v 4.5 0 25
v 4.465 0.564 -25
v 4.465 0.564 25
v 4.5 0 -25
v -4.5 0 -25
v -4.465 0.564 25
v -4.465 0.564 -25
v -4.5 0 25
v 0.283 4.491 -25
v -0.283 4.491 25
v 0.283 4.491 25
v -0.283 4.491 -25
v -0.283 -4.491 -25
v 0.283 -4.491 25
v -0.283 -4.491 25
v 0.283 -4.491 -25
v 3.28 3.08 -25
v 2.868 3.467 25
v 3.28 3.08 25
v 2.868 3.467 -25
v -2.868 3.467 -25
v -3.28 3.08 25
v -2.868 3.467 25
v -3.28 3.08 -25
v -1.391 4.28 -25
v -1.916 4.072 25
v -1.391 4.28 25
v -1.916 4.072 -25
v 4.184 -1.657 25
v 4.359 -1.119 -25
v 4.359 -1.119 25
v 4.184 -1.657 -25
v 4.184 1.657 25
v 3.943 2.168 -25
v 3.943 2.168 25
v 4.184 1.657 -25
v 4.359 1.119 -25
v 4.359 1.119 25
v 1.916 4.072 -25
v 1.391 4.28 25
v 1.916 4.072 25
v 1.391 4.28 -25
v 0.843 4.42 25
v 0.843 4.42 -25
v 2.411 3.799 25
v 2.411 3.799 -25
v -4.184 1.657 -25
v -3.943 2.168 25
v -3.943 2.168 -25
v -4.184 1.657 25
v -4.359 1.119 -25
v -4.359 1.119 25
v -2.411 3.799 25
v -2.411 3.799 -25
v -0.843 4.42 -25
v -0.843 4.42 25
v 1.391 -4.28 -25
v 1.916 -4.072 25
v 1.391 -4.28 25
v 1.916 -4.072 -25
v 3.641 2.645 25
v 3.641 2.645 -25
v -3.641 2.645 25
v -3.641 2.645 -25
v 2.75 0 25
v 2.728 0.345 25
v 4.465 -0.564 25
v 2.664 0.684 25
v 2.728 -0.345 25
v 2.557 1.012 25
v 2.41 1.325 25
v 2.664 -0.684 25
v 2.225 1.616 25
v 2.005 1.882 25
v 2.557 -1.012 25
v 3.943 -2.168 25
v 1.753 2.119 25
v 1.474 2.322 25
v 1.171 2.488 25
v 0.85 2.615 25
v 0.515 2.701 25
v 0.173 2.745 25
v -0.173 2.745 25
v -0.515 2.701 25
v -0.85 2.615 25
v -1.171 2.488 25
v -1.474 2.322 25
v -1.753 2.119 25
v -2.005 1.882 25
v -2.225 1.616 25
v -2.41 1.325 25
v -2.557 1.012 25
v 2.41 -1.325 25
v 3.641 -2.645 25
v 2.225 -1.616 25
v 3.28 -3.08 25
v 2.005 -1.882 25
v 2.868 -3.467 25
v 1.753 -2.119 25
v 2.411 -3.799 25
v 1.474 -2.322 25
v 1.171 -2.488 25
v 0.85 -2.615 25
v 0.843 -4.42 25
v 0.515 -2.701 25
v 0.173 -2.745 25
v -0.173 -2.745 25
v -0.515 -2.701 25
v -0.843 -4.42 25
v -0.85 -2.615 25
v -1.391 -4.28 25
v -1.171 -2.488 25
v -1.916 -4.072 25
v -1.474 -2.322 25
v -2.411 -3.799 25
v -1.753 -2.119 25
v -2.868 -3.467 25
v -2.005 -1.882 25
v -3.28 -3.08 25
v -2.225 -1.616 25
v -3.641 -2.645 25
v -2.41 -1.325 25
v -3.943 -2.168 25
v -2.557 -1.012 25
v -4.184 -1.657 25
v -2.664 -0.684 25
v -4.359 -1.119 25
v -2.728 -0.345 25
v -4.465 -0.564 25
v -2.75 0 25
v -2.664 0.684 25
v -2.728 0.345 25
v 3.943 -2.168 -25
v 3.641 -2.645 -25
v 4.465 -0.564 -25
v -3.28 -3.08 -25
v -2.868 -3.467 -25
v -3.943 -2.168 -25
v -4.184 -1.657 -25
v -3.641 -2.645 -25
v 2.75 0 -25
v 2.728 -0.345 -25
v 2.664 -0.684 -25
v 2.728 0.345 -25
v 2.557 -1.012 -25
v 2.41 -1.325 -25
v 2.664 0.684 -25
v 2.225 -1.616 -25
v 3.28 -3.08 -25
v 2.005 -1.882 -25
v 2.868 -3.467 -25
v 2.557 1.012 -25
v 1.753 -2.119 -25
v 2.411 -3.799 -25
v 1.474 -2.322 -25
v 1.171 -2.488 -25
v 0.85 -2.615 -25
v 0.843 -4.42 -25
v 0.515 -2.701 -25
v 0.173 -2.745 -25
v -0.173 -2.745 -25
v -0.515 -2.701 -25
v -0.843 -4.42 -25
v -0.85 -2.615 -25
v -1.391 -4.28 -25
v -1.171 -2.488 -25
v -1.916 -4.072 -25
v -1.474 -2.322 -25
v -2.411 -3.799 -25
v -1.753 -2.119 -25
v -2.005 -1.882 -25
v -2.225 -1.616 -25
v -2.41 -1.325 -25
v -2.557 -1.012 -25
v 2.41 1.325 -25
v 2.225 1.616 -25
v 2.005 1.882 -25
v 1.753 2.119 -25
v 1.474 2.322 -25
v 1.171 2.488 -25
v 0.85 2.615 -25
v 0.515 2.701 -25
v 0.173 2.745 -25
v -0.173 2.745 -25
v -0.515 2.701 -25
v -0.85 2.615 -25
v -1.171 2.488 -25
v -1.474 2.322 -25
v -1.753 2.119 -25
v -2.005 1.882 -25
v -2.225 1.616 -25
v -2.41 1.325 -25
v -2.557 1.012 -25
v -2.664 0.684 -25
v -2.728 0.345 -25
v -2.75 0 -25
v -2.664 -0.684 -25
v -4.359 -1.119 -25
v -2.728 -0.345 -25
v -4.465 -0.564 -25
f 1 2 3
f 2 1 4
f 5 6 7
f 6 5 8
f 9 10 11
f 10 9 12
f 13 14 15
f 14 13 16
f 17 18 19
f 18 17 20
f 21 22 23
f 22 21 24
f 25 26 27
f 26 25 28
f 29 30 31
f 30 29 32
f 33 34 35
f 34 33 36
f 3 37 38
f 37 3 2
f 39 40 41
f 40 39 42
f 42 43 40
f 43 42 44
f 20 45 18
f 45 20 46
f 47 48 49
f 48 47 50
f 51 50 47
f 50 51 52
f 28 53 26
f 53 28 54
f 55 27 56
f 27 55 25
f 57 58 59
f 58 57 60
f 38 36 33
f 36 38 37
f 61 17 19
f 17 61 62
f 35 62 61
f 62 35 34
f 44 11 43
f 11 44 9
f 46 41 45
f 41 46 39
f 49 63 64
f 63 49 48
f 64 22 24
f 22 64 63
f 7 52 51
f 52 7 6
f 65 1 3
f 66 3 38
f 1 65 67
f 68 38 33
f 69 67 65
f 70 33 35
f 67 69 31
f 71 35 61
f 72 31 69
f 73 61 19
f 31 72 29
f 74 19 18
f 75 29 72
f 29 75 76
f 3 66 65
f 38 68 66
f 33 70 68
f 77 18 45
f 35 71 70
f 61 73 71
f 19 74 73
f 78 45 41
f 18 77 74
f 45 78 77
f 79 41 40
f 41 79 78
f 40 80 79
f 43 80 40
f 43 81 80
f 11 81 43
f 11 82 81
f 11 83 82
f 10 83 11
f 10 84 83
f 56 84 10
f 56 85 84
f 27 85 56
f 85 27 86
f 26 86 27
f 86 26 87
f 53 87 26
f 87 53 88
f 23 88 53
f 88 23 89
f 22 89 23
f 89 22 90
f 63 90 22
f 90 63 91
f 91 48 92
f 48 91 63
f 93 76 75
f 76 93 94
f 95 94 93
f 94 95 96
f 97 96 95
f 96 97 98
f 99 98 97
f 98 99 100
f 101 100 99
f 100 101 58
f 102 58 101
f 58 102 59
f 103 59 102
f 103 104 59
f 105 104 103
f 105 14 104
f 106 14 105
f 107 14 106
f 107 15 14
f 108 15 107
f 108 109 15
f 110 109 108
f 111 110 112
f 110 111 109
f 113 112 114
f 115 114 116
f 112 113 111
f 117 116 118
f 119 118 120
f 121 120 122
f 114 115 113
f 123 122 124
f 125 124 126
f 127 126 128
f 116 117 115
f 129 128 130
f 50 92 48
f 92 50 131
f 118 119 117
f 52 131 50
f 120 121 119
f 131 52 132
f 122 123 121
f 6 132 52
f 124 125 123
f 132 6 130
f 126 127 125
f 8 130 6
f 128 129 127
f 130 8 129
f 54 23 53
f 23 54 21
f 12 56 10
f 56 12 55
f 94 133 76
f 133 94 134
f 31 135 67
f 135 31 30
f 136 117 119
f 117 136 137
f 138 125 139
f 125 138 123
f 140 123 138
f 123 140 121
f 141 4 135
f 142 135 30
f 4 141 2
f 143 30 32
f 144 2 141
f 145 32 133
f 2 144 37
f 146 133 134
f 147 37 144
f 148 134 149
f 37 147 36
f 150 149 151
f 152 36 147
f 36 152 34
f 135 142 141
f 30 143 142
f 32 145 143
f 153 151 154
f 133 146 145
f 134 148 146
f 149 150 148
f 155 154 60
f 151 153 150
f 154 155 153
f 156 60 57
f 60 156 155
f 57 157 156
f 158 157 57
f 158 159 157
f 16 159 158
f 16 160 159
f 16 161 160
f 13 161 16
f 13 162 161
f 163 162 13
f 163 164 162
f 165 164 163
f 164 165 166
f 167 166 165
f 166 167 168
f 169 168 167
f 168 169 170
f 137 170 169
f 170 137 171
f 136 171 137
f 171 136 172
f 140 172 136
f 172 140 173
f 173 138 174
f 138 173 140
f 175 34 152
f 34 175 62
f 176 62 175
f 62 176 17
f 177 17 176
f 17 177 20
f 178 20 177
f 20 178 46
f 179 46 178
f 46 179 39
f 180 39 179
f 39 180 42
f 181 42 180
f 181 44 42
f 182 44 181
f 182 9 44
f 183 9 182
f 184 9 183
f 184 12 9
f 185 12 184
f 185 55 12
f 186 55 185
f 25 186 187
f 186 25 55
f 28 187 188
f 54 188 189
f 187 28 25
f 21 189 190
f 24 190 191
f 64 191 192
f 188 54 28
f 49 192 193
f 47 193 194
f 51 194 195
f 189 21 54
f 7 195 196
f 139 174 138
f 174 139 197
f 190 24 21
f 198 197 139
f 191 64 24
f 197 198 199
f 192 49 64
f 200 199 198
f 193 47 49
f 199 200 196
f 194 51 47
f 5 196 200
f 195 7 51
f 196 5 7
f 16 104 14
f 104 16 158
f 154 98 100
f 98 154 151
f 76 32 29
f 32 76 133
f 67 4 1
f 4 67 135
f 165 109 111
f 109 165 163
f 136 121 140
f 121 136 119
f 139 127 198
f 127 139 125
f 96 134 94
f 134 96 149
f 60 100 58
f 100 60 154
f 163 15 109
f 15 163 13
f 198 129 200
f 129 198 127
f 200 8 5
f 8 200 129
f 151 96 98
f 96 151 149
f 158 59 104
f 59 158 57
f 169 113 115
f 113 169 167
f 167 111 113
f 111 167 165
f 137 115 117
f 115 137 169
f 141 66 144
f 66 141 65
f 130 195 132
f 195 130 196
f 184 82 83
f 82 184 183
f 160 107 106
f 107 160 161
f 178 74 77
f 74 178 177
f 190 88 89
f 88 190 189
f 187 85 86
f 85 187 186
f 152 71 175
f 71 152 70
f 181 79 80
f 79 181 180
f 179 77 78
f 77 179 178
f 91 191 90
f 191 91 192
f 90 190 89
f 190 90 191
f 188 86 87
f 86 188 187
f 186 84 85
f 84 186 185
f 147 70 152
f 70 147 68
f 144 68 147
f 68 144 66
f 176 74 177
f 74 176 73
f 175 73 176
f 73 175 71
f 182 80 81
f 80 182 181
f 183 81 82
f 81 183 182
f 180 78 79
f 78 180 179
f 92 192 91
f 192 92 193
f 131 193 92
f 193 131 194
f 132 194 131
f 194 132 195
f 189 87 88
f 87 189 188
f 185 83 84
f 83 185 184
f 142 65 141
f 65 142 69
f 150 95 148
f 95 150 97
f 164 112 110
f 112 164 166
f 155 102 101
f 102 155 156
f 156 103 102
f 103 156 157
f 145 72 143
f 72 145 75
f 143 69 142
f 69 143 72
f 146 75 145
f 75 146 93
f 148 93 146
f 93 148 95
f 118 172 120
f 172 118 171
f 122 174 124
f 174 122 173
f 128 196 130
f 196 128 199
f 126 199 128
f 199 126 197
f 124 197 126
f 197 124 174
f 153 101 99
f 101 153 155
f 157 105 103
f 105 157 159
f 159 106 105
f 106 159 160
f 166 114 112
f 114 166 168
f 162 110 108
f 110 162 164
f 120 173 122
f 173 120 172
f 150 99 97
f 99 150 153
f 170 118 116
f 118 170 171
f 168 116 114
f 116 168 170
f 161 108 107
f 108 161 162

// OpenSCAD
$fn = 50;


difference() {
	union() {
		translate(v = [0, 0, -25.0000000000]) {
			cylinder(h = 50, r = 4.5000000000);
		}
	}
	union() {
		translate(v = [0, 0, -100.0000000000]) {
			cylinder(h = 200, r = 2.7500000000);
		}
	}
}
